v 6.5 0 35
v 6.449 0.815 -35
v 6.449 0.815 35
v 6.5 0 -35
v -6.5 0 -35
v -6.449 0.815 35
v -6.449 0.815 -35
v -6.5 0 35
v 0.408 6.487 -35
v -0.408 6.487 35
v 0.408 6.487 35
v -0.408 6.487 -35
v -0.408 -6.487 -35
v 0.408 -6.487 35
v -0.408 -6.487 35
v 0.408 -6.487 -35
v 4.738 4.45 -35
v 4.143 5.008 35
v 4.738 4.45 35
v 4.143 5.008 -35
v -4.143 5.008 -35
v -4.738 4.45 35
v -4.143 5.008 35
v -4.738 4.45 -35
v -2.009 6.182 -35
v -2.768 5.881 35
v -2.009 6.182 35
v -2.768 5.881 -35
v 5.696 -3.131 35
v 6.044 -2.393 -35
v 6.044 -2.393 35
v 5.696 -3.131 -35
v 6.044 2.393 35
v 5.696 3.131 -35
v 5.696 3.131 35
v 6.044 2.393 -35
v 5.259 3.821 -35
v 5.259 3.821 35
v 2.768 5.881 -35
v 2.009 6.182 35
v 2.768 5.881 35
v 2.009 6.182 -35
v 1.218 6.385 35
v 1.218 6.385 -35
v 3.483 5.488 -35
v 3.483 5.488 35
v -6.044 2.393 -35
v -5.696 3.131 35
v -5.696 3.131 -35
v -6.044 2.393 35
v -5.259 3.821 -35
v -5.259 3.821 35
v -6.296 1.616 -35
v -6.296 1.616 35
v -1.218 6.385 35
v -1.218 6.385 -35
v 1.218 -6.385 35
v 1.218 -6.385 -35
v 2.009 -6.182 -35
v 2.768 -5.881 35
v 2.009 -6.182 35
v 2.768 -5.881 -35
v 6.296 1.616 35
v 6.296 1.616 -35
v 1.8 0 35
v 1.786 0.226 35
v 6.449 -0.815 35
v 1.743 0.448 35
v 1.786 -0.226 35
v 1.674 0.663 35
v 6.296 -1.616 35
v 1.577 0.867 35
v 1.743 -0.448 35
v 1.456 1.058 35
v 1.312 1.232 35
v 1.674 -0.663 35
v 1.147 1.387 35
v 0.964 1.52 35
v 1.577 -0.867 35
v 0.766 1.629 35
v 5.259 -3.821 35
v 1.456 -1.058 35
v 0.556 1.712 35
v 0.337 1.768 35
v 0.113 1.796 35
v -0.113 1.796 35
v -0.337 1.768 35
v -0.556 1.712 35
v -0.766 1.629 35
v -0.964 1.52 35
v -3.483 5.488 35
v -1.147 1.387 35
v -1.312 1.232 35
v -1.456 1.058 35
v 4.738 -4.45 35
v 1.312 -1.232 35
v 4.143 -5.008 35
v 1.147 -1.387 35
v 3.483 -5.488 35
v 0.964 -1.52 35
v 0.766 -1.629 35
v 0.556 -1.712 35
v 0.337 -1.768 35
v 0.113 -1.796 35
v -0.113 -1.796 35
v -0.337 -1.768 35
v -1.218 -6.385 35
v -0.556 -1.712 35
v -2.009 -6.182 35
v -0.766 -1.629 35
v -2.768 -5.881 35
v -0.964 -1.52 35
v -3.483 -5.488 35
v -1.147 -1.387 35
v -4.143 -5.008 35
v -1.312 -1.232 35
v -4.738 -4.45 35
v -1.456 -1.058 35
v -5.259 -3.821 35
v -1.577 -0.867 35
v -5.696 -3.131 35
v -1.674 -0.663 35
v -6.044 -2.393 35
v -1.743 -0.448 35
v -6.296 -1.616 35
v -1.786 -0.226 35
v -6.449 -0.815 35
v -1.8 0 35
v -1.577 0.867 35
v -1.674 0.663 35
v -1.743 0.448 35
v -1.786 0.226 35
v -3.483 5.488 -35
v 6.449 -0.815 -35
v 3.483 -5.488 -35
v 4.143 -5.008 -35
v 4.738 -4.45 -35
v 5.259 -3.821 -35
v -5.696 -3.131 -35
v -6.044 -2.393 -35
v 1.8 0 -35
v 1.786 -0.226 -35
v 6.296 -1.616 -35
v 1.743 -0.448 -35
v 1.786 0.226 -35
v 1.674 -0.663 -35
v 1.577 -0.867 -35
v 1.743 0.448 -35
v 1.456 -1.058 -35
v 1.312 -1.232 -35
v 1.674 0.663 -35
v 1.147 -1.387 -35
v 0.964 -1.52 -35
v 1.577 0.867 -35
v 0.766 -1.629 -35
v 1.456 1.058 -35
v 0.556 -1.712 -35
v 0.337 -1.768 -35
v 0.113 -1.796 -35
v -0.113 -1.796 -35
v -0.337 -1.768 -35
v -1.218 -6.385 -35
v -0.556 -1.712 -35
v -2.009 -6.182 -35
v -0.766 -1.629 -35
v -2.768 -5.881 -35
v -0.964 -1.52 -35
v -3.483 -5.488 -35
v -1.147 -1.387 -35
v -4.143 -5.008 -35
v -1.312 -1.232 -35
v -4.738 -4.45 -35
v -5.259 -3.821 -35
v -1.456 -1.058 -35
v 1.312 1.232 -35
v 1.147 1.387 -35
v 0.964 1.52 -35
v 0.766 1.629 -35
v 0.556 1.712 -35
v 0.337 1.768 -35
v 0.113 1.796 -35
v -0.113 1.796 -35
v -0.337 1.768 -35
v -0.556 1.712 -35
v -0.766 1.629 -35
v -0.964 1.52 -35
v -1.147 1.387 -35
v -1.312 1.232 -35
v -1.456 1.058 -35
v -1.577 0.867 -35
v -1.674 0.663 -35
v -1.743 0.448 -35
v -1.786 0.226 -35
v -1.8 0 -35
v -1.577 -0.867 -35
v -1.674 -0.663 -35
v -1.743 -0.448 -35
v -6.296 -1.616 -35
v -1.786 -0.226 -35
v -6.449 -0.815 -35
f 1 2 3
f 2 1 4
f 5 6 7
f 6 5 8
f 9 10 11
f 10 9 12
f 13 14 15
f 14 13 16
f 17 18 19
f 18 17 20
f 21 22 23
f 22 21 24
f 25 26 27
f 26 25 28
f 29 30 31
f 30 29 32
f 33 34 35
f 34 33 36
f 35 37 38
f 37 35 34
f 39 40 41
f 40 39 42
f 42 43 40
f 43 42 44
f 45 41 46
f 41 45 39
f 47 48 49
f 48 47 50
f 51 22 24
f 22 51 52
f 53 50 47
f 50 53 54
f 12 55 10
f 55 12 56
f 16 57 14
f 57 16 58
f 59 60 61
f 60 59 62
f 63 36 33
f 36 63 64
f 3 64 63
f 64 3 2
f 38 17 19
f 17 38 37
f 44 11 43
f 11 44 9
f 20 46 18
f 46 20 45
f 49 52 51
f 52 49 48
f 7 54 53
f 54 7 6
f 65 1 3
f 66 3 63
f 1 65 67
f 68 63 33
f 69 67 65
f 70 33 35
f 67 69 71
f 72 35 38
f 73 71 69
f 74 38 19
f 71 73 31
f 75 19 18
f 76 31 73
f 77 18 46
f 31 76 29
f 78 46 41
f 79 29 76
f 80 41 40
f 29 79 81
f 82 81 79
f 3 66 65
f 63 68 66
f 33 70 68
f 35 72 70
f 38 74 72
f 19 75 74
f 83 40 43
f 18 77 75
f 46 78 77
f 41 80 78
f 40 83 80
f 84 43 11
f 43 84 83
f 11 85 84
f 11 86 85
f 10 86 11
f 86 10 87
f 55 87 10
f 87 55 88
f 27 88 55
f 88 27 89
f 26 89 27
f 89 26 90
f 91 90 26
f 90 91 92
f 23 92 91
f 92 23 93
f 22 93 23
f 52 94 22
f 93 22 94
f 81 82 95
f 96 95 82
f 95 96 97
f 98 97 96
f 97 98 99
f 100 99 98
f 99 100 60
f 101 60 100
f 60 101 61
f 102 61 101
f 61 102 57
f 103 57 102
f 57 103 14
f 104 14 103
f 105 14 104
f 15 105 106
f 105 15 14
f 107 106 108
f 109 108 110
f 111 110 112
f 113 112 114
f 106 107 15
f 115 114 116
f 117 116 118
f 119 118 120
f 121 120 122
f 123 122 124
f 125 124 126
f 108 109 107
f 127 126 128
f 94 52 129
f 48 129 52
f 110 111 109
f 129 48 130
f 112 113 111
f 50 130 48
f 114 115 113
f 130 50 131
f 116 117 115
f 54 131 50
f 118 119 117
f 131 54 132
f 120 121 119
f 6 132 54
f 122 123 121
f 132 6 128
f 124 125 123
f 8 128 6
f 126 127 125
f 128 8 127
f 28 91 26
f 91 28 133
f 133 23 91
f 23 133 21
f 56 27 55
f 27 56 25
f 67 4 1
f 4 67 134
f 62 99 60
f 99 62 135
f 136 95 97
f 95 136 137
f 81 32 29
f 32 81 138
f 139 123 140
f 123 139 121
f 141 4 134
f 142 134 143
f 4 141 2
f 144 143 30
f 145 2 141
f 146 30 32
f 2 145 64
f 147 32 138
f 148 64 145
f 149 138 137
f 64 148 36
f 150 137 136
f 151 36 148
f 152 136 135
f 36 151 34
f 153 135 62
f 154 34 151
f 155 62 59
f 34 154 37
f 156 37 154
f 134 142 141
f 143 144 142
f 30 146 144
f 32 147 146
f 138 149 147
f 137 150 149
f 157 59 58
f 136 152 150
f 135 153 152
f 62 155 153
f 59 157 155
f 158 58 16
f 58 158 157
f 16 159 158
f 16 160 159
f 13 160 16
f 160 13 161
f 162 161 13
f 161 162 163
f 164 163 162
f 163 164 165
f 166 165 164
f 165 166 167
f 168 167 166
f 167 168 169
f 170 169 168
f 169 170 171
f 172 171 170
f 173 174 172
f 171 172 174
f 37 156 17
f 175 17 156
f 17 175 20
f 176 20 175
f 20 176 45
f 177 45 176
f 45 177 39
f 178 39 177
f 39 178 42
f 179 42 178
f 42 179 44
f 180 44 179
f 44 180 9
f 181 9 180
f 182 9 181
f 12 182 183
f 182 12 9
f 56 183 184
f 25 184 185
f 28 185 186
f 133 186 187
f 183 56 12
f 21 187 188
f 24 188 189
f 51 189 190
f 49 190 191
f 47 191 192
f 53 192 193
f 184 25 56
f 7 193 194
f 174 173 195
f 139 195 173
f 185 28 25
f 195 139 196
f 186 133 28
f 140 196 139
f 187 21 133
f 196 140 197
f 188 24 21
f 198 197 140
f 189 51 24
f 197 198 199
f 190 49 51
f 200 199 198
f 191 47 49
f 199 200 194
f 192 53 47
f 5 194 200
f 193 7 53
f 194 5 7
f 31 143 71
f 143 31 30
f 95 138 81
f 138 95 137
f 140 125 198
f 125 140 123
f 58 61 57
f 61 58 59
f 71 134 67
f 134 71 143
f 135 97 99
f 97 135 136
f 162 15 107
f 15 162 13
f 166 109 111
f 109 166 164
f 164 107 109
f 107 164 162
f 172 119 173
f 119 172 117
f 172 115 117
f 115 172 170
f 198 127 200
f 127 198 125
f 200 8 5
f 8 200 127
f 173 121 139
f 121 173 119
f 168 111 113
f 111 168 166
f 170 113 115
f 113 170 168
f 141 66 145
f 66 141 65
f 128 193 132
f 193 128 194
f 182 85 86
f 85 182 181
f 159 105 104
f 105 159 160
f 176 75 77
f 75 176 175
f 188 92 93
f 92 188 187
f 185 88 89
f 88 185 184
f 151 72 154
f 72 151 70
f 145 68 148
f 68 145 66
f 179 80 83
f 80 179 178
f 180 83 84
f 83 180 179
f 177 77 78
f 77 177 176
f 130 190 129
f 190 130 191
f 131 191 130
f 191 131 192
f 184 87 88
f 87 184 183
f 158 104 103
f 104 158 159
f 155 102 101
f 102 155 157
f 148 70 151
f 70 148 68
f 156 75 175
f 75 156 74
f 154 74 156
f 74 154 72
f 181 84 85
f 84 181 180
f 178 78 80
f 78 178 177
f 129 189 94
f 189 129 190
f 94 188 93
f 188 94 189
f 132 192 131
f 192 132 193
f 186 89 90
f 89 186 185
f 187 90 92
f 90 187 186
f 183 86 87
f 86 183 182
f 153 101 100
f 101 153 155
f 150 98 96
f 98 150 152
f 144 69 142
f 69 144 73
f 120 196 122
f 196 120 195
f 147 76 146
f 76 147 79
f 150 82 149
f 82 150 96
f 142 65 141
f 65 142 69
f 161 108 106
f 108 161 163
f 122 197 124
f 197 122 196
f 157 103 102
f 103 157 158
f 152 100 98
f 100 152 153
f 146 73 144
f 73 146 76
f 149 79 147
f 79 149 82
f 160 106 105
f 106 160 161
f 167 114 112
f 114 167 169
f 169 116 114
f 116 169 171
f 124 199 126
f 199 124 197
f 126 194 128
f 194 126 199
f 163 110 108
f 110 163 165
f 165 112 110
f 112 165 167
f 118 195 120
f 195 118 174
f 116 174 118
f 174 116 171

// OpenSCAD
$fn = 50;


difference() {
	union() {
		translate(v = [0, 0, -35.0000000000]) {
			cylinder(h = 70, r = 6.5000000000);
		}
	}
	union() {
		translate(v = [0, 0, -100.0000000000]) {
			cylinder(h = 200, r = 1.8000000000);
		}
	}
}
